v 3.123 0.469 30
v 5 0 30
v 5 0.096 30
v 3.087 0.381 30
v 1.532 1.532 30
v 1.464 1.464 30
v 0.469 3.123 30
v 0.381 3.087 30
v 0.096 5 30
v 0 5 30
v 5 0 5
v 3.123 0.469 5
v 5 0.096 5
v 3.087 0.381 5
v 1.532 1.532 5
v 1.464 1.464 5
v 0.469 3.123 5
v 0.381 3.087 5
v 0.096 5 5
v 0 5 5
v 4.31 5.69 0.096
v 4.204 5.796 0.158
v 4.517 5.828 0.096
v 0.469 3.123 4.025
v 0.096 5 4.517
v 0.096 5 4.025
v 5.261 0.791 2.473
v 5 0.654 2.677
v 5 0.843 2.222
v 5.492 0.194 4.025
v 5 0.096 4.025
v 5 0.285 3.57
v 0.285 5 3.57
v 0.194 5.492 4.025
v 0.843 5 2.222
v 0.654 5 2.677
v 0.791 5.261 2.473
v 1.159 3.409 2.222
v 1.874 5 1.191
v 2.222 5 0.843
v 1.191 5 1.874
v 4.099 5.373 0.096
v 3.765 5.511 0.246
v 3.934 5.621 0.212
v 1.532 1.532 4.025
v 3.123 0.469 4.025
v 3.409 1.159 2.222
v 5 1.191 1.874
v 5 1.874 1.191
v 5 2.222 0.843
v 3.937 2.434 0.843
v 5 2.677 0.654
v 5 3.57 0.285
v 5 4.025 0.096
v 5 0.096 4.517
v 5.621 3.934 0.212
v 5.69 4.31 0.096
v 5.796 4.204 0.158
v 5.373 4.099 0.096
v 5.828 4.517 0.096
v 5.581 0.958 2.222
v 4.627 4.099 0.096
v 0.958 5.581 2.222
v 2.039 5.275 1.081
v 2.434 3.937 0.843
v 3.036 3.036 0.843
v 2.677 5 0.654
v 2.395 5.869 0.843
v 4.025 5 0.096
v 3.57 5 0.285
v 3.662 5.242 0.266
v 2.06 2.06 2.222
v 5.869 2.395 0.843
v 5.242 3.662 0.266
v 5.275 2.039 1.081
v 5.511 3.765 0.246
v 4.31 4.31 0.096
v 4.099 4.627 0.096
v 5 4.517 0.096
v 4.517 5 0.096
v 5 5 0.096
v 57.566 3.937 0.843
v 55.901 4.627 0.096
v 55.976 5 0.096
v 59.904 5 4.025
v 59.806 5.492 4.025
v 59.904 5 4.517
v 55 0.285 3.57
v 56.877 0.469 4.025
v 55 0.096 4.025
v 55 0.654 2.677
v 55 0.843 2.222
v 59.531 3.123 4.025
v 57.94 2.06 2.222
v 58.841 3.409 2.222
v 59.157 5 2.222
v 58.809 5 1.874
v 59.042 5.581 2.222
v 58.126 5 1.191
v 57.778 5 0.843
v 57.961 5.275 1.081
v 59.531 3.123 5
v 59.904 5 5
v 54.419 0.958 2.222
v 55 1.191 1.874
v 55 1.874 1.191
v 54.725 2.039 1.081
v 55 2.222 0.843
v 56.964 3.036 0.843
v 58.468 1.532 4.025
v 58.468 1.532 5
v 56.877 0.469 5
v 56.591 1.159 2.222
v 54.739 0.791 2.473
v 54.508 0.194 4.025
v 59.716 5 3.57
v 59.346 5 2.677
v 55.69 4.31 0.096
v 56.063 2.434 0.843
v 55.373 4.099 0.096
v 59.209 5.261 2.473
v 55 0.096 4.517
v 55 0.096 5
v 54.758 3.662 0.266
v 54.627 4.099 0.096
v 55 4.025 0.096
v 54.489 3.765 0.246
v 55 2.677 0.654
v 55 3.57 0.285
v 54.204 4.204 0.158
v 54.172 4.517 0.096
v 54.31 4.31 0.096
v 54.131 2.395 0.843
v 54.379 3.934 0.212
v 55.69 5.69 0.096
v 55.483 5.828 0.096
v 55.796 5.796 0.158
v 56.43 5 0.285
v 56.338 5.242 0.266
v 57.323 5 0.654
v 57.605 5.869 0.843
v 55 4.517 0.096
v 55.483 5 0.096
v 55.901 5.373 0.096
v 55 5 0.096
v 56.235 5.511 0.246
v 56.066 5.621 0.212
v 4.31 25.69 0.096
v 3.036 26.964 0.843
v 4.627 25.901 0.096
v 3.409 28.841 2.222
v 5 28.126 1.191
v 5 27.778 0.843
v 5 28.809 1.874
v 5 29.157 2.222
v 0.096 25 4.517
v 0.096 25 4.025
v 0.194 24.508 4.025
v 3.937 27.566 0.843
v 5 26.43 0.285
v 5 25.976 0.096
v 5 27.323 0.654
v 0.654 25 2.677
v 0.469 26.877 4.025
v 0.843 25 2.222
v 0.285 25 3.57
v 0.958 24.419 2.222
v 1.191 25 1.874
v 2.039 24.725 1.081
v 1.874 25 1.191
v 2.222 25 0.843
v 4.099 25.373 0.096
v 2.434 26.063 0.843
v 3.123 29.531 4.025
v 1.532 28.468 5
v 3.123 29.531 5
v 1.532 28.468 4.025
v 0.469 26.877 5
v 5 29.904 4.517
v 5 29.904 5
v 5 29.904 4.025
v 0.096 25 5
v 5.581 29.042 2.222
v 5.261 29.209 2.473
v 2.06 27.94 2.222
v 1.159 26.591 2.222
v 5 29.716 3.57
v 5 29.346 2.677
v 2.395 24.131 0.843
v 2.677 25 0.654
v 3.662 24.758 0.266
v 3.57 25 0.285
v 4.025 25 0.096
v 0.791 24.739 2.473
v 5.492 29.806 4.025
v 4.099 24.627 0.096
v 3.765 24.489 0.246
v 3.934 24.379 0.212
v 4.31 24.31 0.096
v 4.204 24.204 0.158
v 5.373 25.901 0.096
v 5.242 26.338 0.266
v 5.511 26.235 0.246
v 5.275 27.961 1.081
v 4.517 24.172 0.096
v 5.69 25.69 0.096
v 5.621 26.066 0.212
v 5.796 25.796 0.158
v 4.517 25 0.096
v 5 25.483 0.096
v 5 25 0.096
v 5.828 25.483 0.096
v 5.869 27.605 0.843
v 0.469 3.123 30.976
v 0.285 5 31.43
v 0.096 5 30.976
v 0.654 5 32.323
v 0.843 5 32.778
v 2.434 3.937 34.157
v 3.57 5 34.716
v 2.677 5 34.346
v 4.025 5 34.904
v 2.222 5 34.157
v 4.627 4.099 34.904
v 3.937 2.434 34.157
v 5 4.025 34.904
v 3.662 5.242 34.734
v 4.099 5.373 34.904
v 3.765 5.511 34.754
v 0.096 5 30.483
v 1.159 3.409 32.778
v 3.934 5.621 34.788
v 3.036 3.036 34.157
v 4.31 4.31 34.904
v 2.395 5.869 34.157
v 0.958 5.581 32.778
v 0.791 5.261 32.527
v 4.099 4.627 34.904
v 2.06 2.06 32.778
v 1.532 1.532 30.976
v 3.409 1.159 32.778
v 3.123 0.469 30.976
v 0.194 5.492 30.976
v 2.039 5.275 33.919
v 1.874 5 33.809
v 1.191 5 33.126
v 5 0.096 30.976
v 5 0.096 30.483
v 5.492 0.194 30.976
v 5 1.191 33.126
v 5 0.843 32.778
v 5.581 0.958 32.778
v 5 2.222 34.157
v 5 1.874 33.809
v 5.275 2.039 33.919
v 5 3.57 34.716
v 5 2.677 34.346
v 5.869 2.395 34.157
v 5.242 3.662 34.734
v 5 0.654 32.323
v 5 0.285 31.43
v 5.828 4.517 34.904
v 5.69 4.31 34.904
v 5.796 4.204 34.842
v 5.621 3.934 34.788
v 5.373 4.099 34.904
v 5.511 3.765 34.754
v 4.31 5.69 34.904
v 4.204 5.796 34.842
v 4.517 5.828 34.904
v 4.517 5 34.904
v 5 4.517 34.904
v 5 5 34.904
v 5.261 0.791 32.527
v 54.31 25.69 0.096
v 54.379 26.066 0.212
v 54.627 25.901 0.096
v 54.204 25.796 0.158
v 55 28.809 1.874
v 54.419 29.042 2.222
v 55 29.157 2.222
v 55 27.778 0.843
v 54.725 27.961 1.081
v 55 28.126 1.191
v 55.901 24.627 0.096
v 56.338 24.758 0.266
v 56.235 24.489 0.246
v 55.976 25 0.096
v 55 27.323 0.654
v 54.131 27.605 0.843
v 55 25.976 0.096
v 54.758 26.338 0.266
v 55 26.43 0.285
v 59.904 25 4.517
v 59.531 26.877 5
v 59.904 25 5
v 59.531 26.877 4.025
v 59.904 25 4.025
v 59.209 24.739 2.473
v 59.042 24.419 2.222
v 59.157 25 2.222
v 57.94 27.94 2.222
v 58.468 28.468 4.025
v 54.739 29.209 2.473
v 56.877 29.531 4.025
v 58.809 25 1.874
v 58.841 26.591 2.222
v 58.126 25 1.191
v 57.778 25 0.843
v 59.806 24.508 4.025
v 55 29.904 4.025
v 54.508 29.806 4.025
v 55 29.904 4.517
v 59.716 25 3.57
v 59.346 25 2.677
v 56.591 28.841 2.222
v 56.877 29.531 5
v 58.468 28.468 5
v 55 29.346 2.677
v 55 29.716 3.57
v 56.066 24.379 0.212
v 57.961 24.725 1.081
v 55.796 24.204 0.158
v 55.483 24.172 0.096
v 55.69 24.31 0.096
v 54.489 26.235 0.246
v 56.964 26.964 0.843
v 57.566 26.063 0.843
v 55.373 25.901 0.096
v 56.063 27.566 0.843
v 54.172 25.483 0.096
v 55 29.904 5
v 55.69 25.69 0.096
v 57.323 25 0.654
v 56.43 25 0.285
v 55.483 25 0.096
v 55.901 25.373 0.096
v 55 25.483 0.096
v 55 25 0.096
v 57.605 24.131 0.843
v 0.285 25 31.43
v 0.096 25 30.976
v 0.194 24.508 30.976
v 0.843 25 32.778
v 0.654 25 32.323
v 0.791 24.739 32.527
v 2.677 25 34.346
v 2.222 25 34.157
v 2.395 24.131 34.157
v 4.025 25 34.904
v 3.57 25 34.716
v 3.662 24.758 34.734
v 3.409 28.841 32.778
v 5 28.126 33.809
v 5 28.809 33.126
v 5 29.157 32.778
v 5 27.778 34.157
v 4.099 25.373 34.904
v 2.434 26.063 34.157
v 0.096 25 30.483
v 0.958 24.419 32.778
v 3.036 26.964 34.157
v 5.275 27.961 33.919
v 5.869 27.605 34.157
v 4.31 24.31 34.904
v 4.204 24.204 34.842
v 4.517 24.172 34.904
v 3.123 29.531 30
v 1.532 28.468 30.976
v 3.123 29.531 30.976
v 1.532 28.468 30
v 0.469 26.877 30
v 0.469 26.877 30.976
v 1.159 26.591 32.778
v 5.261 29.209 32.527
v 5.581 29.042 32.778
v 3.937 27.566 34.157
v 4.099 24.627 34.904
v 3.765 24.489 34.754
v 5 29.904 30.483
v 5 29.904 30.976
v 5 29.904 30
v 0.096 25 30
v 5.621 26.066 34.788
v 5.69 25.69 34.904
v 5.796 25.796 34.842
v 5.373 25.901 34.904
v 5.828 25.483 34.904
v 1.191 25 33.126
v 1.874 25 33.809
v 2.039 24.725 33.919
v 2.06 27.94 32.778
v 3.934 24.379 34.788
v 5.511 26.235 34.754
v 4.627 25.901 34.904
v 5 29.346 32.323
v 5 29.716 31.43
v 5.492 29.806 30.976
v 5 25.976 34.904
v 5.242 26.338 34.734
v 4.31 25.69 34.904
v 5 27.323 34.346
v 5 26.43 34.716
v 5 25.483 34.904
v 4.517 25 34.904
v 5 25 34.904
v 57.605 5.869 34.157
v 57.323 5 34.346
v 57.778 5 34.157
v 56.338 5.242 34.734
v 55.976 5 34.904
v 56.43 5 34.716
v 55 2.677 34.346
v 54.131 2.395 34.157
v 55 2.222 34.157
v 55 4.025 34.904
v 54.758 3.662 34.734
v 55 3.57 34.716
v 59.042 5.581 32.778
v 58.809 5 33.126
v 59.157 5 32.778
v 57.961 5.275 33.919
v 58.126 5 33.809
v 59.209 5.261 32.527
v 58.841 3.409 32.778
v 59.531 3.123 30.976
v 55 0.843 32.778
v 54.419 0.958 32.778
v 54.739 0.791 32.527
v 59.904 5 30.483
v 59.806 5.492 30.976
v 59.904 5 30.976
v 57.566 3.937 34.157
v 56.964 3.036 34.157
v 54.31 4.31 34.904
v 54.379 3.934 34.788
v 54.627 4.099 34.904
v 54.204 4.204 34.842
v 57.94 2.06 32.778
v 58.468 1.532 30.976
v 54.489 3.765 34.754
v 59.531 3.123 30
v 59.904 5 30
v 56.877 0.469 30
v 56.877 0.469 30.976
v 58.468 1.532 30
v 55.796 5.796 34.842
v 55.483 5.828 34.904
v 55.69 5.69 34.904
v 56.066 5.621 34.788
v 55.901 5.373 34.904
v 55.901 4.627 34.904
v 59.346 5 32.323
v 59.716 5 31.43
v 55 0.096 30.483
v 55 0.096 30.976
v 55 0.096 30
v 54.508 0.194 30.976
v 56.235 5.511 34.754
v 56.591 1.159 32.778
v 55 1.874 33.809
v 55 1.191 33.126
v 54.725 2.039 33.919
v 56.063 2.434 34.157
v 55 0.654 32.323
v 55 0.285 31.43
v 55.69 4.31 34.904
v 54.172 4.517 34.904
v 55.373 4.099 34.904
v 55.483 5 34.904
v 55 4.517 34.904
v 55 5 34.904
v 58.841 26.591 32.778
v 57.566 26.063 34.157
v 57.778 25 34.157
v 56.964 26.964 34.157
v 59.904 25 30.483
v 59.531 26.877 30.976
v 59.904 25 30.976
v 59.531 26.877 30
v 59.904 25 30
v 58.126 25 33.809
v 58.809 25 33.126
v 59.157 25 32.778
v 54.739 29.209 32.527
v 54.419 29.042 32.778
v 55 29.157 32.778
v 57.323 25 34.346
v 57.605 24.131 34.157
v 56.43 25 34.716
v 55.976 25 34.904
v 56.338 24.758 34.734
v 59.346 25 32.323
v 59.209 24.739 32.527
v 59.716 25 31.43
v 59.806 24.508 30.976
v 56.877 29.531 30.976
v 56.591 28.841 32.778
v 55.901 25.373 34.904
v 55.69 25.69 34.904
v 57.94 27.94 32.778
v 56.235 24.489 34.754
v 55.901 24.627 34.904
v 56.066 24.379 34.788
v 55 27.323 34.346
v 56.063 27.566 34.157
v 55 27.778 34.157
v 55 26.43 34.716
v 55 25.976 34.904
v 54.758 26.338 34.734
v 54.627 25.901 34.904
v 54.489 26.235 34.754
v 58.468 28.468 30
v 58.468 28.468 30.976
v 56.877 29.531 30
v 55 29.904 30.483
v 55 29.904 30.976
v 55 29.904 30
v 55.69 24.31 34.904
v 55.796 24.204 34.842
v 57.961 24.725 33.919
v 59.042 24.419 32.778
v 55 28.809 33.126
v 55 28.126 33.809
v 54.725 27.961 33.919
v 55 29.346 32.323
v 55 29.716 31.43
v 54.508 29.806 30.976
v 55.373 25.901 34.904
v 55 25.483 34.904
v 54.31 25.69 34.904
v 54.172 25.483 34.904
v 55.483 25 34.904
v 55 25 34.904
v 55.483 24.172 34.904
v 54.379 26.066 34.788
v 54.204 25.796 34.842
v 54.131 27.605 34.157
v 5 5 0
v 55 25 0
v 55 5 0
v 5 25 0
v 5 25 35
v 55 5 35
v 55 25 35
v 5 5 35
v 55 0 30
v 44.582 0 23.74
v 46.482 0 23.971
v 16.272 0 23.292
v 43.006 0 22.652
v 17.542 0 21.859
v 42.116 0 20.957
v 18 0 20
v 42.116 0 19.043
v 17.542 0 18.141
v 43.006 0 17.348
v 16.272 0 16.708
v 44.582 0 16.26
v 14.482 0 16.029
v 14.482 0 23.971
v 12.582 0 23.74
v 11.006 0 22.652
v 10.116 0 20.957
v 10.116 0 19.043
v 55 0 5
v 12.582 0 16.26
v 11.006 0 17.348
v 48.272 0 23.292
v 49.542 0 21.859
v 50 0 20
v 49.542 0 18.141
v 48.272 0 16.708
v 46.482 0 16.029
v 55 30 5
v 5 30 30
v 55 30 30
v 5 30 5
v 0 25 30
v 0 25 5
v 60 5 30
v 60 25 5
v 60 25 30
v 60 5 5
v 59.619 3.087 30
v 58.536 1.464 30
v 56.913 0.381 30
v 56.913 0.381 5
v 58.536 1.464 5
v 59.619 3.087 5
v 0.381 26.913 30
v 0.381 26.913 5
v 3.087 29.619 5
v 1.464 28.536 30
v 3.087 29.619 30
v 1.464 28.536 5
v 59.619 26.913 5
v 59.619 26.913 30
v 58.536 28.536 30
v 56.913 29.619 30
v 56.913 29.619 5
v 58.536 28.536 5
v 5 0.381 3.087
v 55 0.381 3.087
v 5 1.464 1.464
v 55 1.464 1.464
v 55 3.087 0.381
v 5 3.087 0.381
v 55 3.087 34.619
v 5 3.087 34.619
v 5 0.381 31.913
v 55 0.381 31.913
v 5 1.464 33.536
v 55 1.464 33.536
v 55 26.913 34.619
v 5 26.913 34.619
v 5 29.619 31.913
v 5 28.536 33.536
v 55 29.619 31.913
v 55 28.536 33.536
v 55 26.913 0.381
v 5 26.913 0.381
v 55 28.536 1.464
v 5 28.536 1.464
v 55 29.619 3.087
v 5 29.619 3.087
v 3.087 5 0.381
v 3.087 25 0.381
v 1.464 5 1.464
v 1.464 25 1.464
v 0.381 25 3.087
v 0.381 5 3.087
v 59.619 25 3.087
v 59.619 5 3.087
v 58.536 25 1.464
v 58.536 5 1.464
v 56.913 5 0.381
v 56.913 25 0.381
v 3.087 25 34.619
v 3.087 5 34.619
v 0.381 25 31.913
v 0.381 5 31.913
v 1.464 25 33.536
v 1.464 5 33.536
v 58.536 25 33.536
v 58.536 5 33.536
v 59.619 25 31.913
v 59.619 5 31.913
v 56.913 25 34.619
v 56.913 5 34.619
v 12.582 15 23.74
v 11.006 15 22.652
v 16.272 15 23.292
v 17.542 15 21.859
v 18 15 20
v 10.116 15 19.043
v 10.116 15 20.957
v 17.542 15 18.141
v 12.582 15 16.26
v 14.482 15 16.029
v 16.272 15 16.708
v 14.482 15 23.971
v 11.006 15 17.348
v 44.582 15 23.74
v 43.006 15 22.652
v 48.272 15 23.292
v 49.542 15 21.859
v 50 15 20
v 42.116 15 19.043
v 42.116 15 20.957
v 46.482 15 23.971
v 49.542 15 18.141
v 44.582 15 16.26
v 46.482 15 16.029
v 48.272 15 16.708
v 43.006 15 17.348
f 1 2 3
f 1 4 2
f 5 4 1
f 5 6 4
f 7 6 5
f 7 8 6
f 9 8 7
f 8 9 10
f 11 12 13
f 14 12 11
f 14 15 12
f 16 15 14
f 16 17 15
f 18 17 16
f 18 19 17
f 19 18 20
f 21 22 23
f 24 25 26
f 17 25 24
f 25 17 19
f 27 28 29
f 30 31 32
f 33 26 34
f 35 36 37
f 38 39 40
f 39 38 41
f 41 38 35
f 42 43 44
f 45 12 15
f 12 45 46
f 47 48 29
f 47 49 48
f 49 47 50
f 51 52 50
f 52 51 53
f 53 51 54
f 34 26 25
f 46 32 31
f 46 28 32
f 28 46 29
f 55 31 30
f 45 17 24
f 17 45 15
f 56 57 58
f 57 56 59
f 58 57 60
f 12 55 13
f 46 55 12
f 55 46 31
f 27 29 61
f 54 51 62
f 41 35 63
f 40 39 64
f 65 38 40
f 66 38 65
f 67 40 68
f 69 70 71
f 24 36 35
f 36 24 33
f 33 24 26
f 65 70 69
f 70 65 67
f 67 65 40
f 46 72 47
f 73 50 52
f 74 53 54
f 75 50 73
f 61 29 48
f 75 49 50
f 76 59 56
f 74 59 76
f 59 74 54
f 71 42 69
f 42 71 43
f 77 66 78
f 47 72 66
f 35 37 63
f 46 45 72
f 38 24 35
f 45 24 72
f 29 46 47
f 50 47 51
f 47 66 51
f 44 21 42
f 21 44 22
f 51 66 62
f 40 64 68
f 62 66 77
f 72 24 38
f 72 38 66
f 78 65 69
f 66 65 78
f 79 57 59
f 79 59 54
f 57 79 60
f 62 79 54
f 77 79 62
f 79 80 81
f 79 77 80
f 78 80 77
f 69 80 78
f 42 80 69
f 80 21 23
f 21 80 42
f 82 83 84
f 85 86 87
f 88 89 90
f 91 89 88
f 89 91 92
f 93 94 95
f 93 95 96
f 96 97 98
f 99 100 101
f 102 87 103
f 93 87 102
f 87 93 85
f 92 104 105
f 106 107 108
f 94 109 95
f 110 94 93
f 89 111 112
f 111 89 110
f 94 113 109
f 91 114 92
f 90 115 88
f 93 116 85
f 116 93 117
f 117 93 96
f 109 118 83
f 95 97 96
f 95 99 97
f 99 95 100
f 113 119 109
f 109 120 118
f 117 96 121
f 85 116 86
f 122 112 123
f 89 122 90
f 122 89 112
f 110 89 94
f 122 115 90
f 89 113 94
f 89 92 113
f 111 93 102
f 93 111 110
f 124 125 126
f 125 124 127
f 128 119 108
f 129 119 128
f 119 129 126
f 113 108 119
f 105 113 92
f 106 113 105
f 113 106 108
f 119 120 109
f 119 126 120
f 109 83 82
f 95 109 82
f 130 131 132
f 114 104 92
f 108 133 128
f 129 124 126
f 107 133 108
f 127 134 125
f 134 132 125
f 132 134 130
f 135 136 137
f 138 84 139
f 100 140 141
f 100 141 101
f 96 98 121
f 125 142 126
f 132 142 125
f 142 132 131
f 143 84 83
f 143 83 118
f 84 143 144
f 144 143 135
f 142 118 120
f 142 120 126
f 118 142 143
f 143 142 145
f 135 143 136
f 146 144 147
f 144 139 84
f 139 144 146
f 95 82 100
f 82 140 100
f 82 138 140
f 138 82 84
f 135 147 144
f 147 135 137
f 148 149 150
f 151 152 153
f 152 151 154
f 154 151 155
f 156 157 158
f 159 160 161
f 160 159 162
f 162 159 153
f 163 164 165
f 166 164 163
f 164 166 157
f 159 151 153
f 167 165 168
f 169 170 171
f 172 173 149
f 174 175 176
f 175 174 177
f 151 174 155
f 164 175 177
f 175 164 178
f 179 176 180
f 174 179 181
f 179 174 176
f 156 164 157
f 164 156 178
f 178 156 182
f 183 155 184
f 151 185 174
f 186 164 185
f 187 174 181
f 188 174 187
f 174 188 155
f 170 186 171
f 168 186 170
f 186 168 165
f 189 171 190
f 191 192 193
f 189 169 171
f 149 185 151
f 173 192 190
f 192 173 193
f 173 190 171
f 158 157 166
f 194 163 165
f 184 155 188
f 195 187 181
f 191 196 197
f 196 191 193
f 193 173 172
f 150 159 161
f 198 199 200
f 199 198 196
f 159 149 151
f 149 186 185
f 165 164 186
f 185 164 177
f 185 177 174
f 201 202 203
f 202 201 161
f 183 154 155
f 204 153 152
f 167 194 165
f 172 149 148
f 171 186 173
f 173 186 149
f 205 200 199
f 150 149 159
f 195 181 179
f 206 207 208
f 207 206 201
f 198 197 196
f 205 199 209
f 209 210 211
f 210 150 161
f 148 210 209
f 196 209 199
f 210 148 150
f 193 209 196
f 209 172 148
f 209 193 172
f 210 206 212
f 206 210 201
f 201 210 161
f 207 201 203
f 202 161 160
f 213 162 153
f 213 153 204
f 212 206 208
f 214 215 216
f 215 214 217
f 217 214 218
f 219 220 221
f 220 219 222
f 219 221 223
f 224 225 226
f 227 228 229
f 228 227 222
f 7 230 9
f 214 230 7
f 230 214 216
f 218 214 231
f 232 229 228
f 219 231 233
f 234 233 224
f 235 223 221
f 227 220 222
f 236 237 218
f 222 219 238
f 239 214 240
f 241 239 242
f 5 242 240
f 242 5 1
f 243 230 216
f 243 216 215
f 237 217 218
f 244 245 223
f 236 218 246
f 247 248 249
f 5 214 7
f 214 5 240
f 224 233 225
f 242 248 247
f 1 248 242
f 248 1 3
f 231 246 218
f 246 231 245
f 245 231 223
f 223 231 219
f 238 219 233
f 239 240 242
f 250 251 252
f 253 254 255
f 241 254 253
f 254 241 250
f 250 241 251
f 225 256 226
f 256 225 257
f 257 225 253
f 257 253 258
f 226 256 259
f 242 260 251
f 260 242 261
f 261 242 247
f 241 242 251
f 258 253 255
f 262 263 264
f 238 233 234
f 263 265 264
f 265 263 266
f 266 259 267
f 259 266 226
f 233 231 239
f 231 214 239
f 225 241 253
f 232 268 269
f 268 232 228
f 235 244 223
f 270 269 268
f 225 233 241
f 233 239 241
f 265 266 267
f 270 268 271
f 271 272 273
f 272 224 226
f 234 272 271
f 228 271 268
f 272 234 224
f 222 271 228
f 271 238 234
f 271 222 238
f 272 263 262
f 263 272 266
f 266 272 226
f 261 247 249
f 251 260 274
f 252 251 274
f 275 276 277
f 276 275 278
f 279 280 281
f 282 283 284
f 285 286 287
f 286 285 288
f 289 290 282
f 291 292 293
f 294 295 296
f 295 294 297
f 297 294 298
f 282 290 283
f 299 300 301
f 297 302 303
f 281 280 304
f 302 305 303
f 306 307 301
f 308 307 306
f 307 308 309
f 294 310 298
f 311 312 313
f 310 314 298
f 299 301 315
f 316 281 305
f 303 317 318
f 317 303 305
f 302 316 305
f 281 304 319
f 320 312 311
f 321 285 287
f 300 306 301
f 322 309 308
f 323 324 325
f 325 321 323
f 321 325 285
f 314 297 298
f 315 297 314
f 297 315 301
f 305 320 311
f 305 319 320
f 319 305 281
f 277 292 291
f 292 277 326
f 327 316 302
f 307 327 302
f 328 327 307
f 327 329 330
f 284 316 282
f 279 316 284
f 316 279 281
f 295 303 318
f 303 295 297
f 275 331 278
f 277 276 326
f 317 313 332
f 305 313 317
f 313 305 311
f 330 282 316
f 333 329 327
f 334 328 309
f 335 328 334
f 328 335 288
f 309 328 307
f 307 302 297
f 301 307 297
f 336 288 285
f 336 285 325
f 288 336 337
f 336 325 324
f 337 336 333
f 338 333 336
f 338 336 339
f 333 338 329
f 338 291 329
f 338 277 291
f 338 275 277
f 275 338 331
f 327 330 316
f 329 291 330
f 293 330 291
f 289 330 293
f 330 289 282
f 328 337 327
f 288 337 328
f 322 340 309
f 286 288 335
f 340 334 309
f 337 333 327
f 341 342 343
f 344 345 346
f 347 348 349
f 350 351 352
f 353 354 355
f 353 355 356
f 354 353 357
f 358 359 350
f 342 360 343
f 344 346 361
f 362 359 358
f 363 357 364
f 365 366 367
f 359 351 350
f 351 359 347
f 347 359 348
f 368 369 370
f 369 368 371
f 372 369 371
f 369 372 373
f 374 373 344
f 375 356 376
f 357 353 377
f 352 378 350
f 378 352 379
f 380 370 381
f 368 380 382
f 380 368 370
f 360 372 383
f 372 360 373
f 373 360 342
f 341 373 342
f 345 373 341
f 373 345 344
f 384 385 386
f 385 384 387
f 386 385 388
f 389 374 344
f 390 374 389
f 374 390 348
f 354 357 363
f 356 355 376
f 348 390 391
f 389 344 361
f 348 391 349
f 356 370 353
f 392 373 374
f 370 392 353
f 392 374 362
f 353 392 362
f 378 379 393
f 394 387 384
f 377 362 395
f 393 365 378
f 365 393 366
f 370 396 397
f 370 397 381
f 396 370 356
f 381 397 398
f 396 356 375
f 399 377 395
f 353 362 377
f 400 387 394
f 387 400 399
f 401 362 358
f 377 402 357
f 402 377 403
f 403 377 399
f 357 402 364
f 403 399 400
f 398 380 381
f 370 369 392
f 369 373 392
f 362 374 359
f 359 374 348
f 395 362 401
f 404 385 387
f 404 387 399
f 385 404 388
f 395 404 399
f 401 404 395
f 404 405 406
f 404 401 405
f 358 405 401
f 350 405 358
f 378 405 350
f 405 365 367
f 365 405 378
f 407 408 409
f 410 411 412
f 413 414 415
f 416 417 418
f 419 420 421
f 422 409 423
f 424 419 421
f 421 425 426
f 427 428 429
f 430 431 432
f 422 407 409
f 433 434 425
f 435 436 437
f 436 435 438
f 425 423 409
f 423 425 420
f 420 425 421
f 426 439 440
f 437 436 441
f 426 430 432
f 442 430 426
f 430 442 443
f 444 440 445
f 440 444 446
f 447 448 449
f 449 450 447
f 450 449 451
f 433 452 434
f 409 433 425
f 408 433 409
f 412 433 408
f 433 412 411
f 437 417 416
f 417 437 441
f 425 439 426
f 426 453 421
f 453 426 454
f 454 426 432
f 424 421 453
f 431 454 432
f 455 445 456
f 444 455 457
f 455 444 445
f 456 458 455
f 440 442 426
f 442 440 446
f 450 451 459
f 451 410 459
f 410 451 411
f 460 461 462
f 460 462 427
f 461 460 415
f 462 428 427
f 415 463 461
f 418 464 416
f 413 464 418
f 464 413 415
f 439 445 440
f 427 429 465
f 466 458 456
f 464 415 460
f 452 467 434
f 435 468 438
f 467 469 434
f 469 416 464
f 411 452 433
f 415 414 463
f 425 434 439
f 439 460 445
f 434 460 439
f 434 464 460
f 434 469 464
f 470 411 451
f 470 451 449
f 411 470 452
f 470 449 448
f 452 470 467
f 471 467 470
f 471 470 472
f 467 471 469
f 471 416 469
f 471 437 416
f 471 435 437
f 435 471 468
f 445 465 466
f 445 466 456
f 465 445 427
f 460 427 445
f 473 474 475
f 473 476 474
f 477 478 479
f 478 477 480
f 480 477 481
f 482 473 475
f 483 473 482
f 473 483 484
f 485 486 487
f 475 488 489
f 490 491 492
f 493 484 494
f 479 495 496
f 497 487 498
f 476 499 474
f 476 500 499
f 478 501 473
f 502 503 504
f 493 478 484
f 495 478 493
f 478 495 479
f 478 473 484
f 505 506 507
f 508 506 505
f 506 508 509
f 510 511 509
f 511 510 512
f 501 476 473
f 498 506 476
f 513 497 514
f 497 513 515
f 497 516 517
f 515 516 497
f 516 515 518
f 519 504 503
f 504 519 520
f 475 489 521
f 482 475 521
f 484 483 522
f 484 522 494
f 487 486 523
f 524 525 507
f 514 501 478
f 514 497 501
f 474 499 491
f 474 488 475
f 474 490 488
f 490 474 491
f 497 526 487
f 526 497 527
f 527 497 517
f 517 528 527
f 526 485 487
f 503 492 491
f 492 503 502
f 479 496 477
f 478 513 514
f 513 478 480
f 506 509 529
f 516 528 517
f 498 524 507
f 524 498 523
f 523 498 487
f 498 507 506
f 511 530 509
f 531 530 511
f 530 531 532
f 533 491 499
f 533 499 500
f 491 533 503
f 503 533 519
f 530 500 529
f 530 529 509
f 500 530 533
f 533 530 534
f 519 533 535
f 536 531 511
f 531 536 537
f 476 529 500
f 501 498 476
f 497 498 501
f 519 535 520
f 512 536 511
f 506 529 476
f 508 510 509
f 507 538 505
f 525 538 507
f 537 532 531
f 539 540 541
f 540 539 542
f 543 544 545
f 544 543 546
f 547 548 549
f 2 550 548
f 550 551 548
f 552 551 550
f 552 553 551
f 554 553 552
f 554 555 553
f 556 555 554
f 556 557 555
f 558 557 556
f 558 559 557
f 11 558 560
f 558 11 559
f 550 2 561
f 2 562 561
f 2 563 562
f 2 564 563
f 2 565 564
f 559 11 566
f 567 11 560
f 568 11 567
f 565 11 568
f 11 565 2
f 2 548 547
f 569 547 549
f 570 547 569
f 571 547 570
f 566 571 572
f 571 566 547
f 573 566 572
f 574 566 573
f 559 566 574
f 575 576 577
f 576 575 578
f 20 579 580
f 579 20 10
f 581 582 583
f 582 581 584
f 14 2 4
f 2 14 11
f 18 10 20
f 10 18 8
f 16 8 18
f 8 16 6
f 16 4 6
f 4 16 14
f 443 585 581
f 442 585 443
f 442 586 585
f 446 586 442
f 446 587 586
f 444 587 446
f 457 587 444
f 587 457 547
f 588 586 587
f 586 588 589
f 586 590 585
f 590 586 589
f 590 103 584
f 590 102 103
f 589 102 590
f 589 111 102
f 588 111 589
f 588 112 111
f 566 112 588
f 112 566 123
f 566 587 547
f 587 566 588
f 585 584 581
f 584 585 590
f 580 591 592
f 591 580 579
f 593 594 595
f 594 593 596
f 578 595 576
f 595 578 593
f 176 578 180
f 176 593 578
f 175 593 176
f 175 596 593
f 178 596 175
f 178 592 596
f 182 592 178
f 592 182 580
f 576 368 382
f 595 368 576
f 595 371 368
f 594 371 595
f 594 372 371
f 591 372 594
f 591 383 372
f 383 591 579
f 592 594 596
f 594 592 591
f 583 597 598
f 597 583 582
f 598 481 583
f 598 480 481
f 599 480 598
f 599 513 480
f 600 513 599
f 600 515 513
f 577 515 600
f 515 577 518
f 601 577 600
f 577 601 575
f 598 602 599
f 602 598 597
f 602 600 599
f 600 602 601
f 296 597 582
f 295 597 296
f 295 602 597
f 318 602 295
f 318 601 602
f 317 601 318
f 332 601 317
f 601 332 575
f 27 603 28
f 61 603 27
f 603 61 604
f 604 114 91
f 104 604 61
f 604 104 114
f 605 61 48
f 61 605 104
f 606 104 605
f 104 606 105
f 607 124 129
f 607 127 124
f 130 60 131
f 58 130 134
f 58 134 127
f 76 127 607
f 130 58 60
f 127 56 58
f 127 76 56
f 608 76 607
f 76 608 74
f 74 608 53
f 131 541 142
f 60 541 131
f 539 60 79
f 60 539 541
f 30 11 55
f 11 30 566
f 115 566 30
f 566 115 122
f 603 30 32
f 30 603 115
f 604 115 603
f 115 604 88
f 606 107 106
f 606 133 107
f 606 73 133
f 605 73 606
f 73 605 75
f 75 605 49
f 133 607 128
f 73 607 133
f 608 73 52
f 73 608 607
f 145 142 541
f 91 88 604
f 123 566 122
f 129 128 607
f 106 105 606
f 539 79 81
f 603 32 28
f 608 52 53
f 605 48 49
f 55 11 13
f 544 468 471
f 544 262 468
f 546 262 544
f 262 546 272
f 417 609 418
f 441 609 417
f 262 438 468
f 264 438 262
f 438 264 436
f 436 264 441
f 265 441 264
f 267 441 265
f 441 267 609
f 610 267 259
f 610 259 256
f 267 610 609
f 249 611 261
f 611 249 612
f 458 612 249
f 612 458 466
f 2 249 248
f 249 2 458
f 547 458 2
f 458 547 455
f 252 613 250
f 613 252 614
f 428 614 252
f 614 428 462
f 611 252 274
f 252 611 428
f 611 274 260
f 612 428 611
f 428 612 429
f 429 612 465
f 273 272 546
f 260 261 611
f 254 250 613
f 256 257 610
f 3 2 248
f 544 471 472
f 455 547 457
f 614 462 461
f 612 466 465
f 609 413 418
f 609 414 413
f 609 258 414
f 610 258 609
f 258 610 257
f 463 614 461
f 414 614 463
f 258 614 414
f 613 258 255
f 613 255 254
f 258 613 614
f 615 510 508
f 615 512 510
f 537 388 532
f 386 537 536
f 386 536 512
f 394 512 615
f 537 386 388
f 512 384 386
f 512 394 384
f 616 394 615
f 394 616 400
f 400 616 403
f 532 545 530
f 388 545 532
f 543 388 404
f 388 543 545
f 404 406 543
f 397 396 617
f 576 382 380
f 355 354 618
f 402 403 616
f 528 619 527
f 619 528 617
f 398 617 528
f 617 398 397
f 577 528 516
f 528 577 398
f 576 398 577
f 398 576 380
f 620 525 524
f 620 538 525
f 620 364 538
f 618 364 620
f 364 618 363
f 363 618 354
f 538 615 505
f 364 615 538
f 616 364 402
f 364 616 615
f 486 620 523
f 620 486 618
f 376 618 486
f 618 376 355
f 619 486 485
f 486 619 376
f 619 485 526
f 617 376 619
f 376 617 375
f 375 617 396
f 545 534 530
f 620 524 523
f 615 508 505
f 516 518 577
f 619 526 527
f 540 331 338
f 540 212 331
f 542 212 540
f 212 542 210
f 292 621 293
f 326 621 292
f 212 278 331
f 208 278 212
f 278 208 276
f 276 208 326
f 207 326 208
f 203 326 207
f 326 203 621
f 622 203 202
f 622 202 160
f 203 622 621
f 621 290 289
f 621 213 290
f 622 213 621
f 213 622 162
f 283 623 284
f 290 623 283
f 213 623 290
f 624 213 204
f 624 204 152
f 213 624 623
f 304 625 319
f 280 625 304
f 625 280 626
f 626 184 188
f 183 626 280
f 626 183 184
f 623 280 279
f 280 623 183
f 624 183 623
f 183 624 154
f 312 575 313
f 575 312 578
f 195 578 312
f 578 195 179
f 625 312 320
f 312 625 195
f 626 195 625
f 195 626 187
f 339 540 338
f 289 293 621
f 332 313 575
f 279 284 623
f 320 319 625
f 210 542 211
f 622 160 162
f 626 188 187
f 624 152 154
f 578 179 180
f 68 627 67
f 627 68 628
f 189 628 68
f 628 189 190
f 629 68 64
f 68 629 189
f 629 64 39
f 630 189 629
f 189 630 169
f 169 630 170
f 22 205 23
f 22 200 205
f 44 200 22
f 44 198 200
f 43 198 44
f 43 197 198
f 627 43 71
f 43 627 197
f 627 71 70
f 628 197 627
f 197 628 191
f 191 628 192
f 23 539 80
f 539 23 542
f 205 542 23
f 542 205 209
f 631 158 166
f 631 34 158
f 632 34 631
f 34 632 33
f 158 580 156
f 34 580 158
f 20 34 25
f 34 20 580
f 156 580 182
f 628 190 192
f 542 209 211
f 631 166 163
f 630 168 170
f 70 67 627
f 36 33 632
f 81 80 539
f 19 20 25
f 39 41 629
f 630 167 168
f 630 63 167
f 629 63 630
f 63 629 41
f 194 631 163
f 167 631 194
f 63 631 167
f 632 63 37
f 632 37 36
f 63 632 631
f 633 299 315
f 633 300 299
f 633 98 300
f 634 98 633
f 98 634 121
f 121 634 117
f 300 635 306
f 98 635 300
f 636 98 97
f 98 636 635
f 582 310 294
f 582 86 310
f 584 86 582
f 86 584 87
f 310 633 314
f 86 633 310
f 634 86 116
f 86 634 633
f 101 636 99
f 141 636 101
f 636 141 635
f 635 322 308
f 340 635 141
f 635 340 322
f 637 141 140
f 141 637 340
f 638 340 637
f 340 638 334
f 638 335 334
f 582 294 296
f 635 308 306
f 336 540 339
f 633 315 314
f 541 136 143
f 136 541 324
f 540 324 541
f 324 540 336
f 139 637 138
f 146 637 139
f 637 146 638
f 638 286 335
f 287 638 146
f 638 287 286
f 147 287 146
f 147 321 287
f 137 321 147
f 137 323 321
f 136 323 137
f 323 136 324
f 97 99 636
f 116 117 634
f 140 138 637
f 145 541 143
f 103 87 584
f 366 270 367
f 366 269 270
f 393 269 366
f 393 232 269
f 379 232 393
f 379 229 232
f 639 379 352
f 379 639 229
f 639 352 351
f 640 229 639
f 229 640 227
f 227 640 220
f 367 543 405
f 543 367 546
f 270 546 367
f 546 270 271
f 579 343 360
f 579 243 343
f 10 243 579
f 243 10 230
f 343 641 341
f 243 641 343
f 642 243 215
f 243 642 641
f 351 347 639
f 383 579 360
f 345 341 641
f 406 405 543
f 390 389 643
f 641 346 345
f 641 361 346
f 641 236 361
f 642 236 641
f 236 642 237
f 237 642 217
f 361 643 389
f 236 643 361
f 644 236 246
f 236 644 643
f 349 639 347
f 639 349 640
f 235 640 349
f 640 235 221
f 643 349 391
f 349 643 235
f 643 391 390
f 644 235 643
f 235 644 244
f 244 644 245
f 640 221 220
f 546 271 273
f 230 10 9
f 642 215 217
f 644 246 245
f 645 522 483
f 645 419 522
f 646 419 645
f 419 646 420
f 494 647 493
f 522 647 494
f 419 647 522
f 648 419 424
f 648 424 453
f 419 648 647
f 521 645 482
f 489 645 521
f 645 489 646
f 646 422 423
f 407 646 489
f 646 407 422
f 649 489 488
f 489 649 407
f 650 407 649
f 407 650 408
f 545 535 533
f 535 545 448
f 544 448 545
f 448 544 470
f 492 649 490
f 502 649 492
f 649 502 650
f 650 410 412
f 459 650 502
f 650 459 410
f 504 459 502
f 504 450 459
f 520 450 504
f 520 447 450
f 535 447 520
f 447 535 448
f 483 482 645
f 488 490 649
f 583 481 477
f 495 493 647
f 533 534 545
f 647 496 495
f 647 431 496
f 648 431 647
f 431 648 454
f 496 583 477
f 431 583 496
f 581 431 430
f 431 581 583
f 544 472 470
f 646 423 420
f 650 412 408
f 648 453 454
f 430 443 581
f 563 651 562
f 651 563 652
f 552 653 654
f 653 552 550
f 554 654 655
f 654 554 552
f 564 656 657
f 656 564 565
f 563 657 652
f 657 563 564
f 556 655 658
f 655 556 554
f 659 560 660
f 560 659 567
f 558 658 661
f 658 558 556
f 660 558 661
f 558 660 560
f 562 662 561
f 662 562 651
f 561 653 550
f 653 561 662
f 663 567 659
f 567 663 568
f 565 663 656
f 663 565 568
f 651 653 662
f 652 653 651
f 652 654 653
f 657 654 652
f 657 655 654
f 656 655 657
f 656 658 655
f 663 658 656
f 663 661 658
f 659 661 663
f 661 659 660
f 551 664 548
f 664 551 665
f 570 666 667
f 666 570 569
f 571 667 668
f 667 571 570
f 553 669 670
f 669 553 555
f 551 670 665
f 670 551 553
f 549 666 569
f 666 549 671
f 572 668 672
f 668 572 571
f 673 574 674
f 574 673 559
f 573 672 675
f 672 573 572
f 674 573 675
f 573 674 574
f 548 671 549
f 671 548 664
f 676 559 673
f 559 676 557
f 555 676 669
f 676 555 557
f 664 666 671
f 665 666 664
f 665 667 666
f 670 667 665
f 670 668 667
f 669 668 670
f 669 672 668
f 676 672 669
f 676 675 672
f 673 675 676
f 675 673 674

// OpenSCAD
Dimensions = [
    60,     // Width
    30,     // Depth
    35      // Height
];
Radius = 5; // Radius of corners, if you want them rounded
            // Otherwise use 0.
Hole_Diameter = 8;  // Diameter of holes for rods
Hole_Depth = 15;    // Depth of holes for rods
Hole_Distance_Bottom = 20;  // Distance of holes from bottom
Hole_Distance = 24; // Distance between the holes


module rounded_cube(size, radius) {
    union(){
        translate([radius, radius, radius]) {
            cube(
                [
                    size[0]-2*radius,
                    size[1]-2*radius,
                    size[2]-2*radius
                ]
            );
        }
        // corner spheres
        translate([radius, radius, radius]) {
            sphere(radius);
        }
        translate([size[0]-radius, radius, radius]) {
            sphere(radius);
        }
        translate([radius, size[1]-radius, radius]) {
            sphere(radius);
        }
        translate([radius, radius, size[2]-radius]) {
            sphere(radius);
        }
        translate([size[0]-radius, size[1]-radius, radius]) {
            sphere(radius);
        }
        translate([radius, size[1]-radius, size[2]-radius]) {
            sphere(radius);
        }
        translate([size[0]-radius, radius, size[2]-radius]) {
            sphere(radius);
        }
        translate([size[0]-radius, size[1]-radius, size[2]-radius]) {
            sphere(radius);
        }
        // faces
        translate([radius, radius, 0]) {
            cube([size[0]-2*radius,size[1]-2*radius,radius]);
        }
        translate([radius, radius, size[2]-radius]) {
            cube([size[0]-2*radius,size[1]-2*radius,radius]);
        }
        translate([radius, 0, radius]) {
            cube([size[0]-2*radius,radius,size[2]-2*radius]);
        }
        translate([radius, size[1]-radius, radius]) {
            cube([size[0]-2*radius,radius,size[2]-2*radius]);
        }
        translate([0, radius, radius]) {
            cube([radius,size[1]-2*radius,size[2]-2*radius]);
        }
        translate([size[0]-radius, radius, radius]) {
            cube([radius,size[1]-2*radius,size[2]-2*radius]);
        }
        // edge cylinders (z-axis)
        translate([radius, radius, radius]) {
            cylinder(size[2]-2*radius, radius, radius);
        }
        translate([size[0]-radius, radius, radius]) {
            cylinder(size[2]-2*radius, radius, radius);
        }
        translate([radius, size[1]-radius, radius]) {
            cylinder(size[2]-2*radius, radius, radius);
        }
        translate([size[0]-radius, size[1]-radius, radius]) {
            cylinder(size[2]-2*radius, radius, radius);
        }
        // edge cylinders (x-axis)
        rotate(a = [0,90,0]) {
            translate([-radius, radius, radius]) {
                cylinder(size[0]-2*radius, radius, radius);
            }
        }
        rotate(a = [0,90,0]) {
            translate([-size[2]+radius, radius, radius]) {
                cylinder(size[0]-2*radius, radius, radius);
            }
        }
        rotate(a = [0,90,0]) {
            translate([-size[2]+radius, size[1]-radius, radius]) {
                cylinder(size[0]-2*radius, radius, radius);
            }
        }
        rotate(a = [0,90,0]) {
            translate([-radius, size[1]-radius, radius]) {
                cylinder(size[0]-2*radius, radius, radius);
            }
        }
        // edge cylinders (y-axis)
        rotate(a = [270,00,0]) {
            translate([radius, -radius, radius]) {
                cylinder(size[1]-2*radius, radius, radius);
            }
        }
        rotate(a = [270,00,0]) {
            translate([size[0]-radius, -radius, radius]) {
                cylinder(size[1]-2*radius, radius, radius);
            }
        }
        rotate(a = [270,00,0]) {
            translate([radius, -size[2]+radius, radius]) {
                cylinder(size[1]-2*radius, radius, radius);
            }
        }
        rotate(a = [270,00,0]) {
            translate([size[0]-radius, -size[2]+radius, radius]) {
                cylinder(size[1]-2*radius, radius, radius);
            }
        }
    }
}

holes_space = 2*Hole_Diameter + Hole_Distance;
offset_hole_1 = (Dimensions[0] - holes_space)/2 + Hole_Diameter/2;
offset_hole_2 = offset_hole_1 + Hole_Distance + Hole_Diameter;

difference(){
    rounded_cube(Dimensions, Radius);
    rotate(a = [90,0,0]) {
        translate(
            [
                offset_hole_1,
                Hole_Distance_Bottom,
                -Hole_Depth
            ]
        ) {
            cylinder(Hole_Depth, Hole_Diameter/2, Hole_Diameter/2);
        }
        translate(
            [
                offset_hole_2,
                Hole_Distance_Bottom,
                -Hole_Depth
            ]
        ) {
            cylinder(Hole_Depth, Hole_Diameter/2, Hole_Diameter/2);
        }
    }
}
